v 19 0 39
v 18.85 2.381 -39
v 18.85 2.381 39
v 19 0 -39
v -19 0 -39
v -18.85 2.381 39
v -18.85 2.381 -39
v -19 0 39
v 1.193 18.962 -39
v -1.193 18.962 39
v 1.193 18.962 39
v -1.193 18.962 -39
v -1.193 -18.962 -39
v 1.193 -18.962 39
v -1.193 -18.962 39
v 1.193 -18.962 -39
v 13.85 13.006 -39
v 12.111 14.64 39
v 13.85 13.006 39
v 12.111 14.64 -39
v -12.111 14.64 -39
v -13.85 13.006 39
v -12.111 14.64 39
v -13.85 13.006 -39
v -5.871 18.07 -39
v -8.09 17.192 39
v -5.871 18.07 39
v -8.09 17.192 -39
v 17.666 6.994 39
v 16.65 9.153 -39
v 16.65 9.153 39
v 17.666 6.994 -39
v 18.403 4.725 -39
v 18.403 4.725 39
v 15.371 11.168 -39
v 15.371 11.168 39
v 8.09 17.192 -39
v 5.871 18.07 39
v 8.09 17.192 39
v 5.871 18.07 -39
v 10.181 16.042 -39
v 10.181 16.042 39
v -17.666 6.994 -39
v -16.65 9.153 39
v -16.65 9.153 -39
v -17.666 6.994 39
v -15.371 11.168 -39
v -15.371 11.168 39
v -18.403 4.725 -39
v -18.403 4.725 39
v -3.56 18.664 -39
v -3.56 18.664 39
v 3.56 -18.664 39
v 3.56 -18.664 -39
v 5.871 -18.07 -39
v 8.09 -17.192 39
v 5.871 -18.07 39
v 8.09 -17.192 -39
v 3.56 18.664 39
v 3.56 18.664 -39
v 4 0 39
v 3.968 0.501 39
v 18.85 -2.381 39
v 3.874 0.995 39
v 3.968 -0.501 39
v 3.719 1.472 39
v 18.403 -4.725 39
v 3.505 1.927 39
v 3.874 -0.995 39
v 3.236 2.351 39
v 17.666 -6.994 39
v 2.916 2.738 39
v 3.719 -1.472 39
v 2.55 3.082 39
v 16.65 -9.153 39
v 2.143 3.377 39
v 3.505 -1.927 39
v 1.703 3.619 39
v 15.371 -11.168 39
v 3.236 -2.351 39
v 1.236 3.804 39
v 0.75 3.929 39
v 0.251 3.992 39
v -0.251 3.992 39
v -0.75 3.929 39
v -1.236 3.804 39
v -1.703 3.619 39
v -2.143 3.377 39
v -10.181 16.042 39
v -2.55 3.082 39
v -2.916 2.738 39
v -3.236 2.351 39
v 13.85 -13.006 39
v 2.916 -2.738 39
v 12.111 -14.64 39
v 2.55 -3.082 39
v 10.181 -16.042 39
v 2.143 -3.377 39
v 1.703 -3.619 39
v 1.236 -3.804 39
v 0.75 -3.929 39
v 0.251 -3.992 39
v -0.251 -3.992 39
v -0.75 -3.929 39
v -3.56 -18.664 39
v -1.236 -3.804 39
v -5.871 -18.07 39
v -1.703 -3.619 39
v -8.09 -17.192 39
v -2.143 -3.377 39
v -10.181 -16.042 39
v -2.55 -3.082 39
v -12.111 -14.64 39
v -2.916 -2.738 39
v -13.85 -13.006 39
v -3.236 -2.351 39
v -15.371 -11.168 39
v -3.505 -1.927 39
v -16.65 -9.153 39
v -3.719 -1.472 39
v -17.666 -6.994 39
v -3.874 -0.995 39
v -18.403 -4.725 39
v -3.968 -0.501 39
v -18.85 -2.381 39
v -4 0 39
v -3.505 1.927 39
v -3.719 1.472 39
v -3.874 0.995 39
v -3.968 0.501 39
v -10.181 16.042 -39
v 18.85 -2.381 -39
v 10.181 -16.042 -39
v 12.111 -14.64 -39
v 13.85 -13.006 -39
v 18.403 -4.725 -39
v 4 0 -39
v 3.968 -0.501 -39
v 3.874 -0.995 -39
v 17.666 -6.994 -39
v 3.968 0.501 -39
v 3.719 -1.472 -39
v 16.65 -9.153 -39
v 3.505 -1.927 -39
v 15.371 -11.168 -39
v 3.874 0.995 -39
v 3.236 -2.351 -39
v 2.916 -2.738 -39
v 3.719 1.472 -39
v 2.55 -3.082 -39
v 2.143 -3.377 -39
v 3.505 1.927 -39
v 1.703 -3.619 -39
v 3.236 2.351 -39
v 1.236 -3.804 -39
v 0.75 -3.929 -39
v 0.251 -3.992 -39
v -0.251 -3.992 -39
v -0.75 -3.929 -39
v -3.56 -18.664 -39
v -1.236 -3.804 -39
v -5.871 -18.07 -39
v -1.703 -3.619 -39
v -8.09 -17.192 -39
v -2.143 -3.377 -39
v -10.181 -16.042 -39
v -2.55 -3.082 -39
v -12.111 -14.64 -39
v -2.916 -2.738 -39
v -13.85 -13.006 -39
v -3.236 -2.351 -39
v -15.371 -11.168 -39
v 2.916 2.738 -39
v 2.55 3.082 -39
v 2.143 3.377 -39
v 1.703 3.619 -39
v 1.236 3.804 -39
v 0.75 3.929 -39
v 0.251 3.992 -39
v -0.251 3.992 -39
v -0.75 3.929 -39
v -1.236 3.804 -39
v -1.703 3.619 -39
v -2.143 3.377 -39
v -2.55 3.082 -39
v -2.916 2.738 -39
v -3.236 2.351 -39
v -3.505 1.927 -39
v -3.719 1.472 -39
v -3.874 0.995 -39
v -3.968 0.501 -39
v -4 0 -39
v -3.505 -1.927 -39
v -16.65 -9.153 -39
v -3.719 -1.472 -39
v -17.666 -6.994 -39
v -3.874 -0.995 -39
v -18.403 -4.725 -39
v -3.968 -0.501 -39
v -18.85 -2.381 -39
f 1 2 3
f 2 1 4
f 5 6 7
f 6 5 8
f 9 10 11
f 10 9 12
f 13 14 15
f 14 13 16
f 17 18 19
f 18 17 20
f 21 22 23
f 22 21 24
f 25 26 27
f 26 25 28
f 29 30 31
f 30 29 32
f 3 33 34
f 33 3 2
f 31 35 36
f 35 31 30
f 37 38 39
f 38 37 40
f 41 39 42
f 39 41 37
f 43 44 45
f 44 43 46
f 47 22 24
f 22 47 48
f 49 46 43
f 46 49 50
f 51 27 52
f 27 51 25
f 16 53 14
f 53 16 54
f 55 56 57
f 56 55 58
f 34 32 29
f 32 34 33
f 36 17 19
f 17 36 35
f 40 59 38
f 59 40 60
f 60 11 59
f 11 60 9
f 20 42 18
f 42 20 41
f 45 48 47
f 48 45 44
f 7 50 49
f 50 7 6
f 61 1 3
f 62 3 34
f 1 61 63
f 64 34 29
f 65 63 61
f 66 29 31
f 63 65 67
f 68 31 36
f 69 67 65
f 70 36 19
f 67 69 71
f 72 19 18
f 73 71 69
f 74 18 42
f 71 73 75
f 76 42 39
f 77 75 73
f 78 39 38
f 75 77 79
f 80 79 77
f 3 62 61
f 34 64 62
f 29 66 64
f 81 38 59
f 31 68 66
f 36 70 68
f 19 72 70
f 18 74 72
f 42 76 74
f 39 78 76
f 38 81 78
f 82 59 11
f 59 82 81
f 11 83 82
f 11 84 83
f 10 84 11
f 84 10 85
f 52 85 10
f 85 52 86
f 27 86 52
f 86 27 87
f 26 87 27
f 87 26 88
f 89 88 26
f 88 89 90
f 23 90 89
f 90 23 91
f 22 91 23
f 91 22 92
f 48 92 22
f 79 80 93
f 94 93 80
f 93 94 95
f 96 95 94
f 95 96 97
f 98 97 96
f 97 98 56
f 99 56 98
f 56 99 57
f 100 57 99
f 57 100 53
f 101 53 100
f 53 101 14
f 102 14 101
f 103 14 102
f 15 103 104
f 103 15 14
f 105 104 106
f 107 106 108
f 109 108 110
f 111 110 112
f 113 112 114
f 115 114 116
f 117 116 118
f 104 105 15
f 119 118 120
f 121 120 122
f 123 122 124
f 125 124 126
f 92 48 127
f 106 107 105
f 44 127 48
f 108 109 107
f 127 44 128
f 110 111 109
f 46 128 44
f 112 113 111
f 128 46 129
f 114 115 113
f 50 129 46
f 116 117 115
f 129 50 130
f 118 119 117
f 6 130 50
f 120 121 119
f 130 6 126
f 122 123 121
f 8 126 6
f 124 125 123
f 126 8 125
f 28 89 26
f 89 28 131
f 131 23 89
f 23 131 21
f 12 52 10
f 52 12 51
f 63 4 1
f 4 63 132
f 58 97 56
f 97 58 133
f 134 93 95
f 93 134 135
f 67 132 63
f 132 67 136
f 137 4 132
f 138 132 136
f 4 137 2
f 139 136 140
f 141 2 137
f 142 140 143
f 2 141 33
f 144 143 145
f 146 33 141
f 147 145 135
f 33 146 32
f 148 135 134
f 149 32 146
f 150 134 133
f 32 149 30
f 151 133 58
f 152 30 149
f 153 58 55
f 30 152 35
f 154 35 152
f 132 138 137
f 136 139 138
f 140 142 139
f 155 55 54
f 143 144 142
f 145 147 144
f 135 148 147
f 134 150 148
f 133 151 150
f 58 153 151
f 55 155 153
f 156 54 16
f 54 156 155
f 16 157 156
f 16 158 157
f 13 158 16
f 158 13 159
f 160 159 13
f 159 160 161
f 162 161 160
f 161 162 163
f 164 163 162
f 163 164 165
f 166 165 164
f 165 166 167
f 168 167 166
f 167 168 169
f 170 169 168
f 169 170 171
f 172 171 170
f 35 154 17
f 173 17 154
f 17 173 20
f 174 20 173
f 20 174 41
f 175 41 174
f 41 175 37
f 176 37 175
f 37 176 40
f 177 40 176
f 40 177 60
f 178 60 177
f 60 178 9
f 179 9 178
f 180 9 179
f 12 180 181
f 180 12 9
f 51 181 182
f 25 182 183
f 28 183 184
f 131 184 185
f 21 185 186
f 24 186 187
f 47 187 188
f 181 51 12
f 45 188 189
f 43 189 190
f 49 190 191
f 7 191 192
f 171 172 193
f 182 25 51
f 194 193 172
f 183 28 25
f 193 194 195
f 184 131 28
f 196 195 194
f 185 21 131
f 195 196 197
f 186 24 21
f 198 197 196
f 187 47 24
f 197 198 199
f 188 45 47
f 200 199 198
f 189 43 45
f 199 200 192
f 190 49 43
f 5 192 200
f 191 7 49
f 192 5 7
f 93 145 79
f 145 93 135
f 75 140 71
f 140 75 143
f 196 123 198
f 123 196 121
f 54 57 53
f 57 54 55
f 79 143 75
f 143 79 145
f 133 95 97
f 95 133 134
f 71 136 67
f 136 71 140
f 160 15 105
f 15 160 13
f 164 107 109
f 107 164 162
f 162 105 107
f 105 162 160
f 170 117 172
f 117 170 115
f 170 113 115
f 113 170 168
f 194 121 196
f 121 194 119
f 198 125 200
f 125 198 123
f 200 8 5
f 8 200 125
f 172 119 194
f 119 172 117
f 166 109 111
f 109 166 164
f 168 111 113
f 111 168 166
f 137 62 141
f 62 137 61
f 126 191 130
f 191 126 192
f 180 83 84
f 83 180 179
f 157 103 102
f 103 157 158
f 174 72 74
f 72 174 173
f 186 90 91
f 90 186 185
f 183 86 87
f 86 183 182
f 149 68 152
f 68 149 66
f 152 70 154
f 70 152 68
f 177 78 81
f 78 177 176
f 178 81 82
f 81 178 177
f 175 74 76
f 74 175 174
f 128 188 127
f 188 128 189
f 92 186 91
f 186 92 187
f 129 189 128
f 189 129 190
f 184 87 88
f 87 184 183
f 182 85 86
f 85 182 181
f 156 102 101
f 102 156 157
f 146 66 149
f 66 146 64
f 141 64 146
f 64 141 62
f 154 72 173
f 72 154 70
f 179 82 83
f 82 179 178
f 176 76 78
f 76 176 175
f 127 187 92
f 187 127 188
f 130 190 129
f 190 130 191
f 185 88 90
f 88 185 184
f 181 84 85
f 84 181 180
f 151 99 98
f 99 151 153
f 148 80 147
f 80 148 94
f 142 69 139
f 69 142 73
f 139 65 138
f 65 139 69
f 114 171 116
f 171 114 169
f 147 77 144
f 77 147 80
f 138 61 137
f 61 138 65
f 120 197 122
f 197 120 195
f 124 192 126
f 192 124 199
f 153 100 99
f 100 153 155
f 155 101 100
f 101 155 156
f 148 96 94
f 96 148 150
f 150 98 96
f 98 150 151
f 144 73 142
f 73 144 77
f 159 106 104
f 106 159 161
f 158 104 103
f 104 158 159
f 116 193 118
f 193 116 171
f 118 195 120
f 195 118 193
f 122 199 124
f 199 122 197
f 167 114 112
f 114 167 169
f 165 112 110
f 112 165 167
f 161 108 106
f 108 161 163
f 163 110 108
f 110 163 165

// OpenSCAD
$fn = 50;


difference() {
	union() {
		translate(v = [0, 0, -39.0000000000]) {
			cylinder(h = 78, r = 19.0000000000);
		}
	}
	union() {
		translate(v = [0, 0, -100.0000000000]) {
			cylinder(h = 200, r = 4.0000000000);
		}
	}
}
